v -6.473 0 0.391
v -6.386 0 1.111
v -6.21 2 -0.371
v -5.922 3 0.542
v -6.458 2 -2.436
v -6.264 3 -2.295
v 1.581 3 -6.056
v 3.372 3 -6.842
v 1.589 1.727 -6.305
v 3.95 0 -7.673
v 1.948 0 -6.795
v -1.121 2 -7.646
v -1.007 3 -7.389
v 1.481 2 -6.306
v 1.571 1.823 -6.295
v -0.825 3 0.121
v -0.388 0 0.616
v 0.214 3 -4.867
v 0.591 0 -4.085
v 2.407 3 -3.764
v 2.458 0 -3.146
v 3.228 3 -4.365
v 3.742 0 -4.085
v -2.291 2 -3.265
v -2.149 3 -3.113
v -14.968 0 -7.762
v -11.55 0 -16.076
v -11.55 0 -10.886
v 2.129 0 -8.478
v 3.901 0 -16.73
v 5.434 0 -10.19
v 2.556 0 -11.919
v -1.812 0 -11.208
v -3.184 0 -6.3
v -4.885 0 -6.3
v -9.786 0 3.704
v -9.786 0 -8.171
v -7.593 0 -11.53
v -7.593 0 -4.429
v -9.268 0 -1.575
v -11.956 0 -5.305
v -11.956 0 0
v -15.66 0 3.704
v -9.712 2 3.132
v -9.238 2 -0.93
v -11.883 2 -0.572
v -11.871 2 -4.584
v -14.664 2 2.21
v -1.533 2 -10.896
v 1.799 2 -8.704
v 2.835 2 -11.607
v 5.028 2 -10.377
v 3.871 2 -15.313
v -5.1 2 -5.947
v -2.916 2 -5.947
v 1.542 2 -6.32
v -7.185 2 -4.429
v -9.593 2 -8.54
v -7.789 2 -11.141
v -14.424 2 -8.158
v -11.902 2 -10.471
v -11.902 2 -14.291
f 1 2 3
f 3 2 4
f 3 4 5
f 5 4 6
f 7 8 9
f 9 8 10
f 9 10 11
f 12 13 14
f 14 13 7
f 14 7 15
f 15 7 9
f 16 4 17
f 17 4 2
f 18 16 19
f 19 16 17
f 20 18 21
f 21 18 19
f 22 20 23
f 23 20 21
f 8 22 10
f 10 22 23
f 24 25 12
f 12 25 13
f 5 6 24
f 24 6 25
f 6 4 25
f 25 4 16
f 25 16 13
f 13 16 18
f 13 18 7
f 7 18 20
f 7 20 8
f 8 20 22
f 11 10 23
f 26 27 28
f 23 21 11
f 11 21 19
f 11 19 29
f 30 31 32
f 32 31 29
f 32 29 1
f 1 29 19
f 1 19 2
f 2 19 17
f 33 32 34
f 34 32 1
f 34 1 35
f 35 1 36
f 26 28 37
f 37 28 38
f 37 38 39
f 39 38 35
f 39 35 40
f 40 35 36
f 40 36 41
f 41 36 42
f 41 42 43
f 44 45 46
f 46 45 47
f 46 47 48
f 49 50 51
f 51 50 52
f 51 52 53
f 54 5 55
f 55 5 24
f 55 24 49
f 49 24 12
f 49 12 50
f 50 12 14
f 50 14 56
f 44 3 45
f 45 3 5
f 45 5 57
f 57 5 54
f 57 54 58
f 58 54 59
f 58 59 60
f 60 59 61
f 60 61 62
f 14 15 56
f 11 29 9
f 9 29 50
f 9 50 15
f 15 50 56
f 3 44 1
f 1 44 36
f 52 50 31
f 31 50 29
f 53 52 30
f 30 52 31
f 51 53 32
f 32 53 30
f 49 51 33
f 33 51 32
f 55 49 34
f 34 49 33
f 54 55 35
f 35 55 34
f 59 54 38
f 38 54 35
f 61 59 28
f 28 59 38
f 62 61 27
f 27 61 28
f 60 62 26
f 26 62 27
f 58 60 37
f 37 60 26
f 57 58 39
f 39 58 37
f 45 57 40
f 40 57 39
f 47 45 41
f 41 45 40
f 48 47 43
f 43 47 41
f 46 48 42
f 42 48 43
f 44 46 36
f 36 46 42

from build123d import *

# Parameters (mm, degrees)
BOSS_EXTRUDE1_DEPTH = 3
BOSS_EXTRUDE1_TAPER = 10
BOSS_EXTRUDE2_DEPTH = 2
BOSS_EXTRUDE2_TAPER = 10


with BuildPart() as part:
    # Sketch2 → Boss-Extrude1 (new body)
    with BuildSketch(Plane(origin=(0, 0, 0), x_dir=(1, 0, 0), z_dir=(0, 1, 0))):
        Polygon((-6.386366525, -1.110831431), (-0.387798033, -0.615752137), (0.59137661, 4.085386129), (2.457892532, 3.146450407), (3.742032583, 4.085386129), (3.950183343, 7.673476682), (1.599090403, 6.641871716), (-1.348493634, 8.160405965), (-2.574910007, 3.568032251), (-6.847574096, 2.717928997), align=None)
    extrude(amount=BOSS_EXTRUDE1_DEPTH, taper=BOSS_EXTRUDE1_TAPER)

    # Sketch3 → Boss-Extrude2 (add)
    with BuildSketch(Plane(origin=(0, 0, 0), x_dir=(1, 0, 0), z_dir=(0, 1, 0))):
        Polygon((-5.401087621, 0.680652537), (-2.497796972, 1.423254114), (-0.865421032, 5.393686332), (1.865812166, 6.033995954), (2.128878959, 8.477950768), (5.434208616, 10.189724535), (3.900877599, 16.730130038), (2.555533764, 11.918695826), (-1.811645648, 11.207975664), (-3.183948296, 6.300127023), (-4.885000457, 6.300127023), (-7.59341425, 11.529907155), (-11.549774725, 10.886044173), (-11.549774725, 16.075722368), (-14.967956792, 7.761669285), (-9.785740879, 8.17089321), (-7.59341425, 4.429360837), (-9.268342977, 1.57485978), (-11.95607608, 5.305249812), (-15.660076801, -3.704000721), (-11.95607608, 0), (-9.785740879, -3.704000721), align=None)
    extrude(amount=BOSS_EXTRUDE2_DEPTH, taper=BOSS_EXTRUDE2_TAPER)


solid = part.part
